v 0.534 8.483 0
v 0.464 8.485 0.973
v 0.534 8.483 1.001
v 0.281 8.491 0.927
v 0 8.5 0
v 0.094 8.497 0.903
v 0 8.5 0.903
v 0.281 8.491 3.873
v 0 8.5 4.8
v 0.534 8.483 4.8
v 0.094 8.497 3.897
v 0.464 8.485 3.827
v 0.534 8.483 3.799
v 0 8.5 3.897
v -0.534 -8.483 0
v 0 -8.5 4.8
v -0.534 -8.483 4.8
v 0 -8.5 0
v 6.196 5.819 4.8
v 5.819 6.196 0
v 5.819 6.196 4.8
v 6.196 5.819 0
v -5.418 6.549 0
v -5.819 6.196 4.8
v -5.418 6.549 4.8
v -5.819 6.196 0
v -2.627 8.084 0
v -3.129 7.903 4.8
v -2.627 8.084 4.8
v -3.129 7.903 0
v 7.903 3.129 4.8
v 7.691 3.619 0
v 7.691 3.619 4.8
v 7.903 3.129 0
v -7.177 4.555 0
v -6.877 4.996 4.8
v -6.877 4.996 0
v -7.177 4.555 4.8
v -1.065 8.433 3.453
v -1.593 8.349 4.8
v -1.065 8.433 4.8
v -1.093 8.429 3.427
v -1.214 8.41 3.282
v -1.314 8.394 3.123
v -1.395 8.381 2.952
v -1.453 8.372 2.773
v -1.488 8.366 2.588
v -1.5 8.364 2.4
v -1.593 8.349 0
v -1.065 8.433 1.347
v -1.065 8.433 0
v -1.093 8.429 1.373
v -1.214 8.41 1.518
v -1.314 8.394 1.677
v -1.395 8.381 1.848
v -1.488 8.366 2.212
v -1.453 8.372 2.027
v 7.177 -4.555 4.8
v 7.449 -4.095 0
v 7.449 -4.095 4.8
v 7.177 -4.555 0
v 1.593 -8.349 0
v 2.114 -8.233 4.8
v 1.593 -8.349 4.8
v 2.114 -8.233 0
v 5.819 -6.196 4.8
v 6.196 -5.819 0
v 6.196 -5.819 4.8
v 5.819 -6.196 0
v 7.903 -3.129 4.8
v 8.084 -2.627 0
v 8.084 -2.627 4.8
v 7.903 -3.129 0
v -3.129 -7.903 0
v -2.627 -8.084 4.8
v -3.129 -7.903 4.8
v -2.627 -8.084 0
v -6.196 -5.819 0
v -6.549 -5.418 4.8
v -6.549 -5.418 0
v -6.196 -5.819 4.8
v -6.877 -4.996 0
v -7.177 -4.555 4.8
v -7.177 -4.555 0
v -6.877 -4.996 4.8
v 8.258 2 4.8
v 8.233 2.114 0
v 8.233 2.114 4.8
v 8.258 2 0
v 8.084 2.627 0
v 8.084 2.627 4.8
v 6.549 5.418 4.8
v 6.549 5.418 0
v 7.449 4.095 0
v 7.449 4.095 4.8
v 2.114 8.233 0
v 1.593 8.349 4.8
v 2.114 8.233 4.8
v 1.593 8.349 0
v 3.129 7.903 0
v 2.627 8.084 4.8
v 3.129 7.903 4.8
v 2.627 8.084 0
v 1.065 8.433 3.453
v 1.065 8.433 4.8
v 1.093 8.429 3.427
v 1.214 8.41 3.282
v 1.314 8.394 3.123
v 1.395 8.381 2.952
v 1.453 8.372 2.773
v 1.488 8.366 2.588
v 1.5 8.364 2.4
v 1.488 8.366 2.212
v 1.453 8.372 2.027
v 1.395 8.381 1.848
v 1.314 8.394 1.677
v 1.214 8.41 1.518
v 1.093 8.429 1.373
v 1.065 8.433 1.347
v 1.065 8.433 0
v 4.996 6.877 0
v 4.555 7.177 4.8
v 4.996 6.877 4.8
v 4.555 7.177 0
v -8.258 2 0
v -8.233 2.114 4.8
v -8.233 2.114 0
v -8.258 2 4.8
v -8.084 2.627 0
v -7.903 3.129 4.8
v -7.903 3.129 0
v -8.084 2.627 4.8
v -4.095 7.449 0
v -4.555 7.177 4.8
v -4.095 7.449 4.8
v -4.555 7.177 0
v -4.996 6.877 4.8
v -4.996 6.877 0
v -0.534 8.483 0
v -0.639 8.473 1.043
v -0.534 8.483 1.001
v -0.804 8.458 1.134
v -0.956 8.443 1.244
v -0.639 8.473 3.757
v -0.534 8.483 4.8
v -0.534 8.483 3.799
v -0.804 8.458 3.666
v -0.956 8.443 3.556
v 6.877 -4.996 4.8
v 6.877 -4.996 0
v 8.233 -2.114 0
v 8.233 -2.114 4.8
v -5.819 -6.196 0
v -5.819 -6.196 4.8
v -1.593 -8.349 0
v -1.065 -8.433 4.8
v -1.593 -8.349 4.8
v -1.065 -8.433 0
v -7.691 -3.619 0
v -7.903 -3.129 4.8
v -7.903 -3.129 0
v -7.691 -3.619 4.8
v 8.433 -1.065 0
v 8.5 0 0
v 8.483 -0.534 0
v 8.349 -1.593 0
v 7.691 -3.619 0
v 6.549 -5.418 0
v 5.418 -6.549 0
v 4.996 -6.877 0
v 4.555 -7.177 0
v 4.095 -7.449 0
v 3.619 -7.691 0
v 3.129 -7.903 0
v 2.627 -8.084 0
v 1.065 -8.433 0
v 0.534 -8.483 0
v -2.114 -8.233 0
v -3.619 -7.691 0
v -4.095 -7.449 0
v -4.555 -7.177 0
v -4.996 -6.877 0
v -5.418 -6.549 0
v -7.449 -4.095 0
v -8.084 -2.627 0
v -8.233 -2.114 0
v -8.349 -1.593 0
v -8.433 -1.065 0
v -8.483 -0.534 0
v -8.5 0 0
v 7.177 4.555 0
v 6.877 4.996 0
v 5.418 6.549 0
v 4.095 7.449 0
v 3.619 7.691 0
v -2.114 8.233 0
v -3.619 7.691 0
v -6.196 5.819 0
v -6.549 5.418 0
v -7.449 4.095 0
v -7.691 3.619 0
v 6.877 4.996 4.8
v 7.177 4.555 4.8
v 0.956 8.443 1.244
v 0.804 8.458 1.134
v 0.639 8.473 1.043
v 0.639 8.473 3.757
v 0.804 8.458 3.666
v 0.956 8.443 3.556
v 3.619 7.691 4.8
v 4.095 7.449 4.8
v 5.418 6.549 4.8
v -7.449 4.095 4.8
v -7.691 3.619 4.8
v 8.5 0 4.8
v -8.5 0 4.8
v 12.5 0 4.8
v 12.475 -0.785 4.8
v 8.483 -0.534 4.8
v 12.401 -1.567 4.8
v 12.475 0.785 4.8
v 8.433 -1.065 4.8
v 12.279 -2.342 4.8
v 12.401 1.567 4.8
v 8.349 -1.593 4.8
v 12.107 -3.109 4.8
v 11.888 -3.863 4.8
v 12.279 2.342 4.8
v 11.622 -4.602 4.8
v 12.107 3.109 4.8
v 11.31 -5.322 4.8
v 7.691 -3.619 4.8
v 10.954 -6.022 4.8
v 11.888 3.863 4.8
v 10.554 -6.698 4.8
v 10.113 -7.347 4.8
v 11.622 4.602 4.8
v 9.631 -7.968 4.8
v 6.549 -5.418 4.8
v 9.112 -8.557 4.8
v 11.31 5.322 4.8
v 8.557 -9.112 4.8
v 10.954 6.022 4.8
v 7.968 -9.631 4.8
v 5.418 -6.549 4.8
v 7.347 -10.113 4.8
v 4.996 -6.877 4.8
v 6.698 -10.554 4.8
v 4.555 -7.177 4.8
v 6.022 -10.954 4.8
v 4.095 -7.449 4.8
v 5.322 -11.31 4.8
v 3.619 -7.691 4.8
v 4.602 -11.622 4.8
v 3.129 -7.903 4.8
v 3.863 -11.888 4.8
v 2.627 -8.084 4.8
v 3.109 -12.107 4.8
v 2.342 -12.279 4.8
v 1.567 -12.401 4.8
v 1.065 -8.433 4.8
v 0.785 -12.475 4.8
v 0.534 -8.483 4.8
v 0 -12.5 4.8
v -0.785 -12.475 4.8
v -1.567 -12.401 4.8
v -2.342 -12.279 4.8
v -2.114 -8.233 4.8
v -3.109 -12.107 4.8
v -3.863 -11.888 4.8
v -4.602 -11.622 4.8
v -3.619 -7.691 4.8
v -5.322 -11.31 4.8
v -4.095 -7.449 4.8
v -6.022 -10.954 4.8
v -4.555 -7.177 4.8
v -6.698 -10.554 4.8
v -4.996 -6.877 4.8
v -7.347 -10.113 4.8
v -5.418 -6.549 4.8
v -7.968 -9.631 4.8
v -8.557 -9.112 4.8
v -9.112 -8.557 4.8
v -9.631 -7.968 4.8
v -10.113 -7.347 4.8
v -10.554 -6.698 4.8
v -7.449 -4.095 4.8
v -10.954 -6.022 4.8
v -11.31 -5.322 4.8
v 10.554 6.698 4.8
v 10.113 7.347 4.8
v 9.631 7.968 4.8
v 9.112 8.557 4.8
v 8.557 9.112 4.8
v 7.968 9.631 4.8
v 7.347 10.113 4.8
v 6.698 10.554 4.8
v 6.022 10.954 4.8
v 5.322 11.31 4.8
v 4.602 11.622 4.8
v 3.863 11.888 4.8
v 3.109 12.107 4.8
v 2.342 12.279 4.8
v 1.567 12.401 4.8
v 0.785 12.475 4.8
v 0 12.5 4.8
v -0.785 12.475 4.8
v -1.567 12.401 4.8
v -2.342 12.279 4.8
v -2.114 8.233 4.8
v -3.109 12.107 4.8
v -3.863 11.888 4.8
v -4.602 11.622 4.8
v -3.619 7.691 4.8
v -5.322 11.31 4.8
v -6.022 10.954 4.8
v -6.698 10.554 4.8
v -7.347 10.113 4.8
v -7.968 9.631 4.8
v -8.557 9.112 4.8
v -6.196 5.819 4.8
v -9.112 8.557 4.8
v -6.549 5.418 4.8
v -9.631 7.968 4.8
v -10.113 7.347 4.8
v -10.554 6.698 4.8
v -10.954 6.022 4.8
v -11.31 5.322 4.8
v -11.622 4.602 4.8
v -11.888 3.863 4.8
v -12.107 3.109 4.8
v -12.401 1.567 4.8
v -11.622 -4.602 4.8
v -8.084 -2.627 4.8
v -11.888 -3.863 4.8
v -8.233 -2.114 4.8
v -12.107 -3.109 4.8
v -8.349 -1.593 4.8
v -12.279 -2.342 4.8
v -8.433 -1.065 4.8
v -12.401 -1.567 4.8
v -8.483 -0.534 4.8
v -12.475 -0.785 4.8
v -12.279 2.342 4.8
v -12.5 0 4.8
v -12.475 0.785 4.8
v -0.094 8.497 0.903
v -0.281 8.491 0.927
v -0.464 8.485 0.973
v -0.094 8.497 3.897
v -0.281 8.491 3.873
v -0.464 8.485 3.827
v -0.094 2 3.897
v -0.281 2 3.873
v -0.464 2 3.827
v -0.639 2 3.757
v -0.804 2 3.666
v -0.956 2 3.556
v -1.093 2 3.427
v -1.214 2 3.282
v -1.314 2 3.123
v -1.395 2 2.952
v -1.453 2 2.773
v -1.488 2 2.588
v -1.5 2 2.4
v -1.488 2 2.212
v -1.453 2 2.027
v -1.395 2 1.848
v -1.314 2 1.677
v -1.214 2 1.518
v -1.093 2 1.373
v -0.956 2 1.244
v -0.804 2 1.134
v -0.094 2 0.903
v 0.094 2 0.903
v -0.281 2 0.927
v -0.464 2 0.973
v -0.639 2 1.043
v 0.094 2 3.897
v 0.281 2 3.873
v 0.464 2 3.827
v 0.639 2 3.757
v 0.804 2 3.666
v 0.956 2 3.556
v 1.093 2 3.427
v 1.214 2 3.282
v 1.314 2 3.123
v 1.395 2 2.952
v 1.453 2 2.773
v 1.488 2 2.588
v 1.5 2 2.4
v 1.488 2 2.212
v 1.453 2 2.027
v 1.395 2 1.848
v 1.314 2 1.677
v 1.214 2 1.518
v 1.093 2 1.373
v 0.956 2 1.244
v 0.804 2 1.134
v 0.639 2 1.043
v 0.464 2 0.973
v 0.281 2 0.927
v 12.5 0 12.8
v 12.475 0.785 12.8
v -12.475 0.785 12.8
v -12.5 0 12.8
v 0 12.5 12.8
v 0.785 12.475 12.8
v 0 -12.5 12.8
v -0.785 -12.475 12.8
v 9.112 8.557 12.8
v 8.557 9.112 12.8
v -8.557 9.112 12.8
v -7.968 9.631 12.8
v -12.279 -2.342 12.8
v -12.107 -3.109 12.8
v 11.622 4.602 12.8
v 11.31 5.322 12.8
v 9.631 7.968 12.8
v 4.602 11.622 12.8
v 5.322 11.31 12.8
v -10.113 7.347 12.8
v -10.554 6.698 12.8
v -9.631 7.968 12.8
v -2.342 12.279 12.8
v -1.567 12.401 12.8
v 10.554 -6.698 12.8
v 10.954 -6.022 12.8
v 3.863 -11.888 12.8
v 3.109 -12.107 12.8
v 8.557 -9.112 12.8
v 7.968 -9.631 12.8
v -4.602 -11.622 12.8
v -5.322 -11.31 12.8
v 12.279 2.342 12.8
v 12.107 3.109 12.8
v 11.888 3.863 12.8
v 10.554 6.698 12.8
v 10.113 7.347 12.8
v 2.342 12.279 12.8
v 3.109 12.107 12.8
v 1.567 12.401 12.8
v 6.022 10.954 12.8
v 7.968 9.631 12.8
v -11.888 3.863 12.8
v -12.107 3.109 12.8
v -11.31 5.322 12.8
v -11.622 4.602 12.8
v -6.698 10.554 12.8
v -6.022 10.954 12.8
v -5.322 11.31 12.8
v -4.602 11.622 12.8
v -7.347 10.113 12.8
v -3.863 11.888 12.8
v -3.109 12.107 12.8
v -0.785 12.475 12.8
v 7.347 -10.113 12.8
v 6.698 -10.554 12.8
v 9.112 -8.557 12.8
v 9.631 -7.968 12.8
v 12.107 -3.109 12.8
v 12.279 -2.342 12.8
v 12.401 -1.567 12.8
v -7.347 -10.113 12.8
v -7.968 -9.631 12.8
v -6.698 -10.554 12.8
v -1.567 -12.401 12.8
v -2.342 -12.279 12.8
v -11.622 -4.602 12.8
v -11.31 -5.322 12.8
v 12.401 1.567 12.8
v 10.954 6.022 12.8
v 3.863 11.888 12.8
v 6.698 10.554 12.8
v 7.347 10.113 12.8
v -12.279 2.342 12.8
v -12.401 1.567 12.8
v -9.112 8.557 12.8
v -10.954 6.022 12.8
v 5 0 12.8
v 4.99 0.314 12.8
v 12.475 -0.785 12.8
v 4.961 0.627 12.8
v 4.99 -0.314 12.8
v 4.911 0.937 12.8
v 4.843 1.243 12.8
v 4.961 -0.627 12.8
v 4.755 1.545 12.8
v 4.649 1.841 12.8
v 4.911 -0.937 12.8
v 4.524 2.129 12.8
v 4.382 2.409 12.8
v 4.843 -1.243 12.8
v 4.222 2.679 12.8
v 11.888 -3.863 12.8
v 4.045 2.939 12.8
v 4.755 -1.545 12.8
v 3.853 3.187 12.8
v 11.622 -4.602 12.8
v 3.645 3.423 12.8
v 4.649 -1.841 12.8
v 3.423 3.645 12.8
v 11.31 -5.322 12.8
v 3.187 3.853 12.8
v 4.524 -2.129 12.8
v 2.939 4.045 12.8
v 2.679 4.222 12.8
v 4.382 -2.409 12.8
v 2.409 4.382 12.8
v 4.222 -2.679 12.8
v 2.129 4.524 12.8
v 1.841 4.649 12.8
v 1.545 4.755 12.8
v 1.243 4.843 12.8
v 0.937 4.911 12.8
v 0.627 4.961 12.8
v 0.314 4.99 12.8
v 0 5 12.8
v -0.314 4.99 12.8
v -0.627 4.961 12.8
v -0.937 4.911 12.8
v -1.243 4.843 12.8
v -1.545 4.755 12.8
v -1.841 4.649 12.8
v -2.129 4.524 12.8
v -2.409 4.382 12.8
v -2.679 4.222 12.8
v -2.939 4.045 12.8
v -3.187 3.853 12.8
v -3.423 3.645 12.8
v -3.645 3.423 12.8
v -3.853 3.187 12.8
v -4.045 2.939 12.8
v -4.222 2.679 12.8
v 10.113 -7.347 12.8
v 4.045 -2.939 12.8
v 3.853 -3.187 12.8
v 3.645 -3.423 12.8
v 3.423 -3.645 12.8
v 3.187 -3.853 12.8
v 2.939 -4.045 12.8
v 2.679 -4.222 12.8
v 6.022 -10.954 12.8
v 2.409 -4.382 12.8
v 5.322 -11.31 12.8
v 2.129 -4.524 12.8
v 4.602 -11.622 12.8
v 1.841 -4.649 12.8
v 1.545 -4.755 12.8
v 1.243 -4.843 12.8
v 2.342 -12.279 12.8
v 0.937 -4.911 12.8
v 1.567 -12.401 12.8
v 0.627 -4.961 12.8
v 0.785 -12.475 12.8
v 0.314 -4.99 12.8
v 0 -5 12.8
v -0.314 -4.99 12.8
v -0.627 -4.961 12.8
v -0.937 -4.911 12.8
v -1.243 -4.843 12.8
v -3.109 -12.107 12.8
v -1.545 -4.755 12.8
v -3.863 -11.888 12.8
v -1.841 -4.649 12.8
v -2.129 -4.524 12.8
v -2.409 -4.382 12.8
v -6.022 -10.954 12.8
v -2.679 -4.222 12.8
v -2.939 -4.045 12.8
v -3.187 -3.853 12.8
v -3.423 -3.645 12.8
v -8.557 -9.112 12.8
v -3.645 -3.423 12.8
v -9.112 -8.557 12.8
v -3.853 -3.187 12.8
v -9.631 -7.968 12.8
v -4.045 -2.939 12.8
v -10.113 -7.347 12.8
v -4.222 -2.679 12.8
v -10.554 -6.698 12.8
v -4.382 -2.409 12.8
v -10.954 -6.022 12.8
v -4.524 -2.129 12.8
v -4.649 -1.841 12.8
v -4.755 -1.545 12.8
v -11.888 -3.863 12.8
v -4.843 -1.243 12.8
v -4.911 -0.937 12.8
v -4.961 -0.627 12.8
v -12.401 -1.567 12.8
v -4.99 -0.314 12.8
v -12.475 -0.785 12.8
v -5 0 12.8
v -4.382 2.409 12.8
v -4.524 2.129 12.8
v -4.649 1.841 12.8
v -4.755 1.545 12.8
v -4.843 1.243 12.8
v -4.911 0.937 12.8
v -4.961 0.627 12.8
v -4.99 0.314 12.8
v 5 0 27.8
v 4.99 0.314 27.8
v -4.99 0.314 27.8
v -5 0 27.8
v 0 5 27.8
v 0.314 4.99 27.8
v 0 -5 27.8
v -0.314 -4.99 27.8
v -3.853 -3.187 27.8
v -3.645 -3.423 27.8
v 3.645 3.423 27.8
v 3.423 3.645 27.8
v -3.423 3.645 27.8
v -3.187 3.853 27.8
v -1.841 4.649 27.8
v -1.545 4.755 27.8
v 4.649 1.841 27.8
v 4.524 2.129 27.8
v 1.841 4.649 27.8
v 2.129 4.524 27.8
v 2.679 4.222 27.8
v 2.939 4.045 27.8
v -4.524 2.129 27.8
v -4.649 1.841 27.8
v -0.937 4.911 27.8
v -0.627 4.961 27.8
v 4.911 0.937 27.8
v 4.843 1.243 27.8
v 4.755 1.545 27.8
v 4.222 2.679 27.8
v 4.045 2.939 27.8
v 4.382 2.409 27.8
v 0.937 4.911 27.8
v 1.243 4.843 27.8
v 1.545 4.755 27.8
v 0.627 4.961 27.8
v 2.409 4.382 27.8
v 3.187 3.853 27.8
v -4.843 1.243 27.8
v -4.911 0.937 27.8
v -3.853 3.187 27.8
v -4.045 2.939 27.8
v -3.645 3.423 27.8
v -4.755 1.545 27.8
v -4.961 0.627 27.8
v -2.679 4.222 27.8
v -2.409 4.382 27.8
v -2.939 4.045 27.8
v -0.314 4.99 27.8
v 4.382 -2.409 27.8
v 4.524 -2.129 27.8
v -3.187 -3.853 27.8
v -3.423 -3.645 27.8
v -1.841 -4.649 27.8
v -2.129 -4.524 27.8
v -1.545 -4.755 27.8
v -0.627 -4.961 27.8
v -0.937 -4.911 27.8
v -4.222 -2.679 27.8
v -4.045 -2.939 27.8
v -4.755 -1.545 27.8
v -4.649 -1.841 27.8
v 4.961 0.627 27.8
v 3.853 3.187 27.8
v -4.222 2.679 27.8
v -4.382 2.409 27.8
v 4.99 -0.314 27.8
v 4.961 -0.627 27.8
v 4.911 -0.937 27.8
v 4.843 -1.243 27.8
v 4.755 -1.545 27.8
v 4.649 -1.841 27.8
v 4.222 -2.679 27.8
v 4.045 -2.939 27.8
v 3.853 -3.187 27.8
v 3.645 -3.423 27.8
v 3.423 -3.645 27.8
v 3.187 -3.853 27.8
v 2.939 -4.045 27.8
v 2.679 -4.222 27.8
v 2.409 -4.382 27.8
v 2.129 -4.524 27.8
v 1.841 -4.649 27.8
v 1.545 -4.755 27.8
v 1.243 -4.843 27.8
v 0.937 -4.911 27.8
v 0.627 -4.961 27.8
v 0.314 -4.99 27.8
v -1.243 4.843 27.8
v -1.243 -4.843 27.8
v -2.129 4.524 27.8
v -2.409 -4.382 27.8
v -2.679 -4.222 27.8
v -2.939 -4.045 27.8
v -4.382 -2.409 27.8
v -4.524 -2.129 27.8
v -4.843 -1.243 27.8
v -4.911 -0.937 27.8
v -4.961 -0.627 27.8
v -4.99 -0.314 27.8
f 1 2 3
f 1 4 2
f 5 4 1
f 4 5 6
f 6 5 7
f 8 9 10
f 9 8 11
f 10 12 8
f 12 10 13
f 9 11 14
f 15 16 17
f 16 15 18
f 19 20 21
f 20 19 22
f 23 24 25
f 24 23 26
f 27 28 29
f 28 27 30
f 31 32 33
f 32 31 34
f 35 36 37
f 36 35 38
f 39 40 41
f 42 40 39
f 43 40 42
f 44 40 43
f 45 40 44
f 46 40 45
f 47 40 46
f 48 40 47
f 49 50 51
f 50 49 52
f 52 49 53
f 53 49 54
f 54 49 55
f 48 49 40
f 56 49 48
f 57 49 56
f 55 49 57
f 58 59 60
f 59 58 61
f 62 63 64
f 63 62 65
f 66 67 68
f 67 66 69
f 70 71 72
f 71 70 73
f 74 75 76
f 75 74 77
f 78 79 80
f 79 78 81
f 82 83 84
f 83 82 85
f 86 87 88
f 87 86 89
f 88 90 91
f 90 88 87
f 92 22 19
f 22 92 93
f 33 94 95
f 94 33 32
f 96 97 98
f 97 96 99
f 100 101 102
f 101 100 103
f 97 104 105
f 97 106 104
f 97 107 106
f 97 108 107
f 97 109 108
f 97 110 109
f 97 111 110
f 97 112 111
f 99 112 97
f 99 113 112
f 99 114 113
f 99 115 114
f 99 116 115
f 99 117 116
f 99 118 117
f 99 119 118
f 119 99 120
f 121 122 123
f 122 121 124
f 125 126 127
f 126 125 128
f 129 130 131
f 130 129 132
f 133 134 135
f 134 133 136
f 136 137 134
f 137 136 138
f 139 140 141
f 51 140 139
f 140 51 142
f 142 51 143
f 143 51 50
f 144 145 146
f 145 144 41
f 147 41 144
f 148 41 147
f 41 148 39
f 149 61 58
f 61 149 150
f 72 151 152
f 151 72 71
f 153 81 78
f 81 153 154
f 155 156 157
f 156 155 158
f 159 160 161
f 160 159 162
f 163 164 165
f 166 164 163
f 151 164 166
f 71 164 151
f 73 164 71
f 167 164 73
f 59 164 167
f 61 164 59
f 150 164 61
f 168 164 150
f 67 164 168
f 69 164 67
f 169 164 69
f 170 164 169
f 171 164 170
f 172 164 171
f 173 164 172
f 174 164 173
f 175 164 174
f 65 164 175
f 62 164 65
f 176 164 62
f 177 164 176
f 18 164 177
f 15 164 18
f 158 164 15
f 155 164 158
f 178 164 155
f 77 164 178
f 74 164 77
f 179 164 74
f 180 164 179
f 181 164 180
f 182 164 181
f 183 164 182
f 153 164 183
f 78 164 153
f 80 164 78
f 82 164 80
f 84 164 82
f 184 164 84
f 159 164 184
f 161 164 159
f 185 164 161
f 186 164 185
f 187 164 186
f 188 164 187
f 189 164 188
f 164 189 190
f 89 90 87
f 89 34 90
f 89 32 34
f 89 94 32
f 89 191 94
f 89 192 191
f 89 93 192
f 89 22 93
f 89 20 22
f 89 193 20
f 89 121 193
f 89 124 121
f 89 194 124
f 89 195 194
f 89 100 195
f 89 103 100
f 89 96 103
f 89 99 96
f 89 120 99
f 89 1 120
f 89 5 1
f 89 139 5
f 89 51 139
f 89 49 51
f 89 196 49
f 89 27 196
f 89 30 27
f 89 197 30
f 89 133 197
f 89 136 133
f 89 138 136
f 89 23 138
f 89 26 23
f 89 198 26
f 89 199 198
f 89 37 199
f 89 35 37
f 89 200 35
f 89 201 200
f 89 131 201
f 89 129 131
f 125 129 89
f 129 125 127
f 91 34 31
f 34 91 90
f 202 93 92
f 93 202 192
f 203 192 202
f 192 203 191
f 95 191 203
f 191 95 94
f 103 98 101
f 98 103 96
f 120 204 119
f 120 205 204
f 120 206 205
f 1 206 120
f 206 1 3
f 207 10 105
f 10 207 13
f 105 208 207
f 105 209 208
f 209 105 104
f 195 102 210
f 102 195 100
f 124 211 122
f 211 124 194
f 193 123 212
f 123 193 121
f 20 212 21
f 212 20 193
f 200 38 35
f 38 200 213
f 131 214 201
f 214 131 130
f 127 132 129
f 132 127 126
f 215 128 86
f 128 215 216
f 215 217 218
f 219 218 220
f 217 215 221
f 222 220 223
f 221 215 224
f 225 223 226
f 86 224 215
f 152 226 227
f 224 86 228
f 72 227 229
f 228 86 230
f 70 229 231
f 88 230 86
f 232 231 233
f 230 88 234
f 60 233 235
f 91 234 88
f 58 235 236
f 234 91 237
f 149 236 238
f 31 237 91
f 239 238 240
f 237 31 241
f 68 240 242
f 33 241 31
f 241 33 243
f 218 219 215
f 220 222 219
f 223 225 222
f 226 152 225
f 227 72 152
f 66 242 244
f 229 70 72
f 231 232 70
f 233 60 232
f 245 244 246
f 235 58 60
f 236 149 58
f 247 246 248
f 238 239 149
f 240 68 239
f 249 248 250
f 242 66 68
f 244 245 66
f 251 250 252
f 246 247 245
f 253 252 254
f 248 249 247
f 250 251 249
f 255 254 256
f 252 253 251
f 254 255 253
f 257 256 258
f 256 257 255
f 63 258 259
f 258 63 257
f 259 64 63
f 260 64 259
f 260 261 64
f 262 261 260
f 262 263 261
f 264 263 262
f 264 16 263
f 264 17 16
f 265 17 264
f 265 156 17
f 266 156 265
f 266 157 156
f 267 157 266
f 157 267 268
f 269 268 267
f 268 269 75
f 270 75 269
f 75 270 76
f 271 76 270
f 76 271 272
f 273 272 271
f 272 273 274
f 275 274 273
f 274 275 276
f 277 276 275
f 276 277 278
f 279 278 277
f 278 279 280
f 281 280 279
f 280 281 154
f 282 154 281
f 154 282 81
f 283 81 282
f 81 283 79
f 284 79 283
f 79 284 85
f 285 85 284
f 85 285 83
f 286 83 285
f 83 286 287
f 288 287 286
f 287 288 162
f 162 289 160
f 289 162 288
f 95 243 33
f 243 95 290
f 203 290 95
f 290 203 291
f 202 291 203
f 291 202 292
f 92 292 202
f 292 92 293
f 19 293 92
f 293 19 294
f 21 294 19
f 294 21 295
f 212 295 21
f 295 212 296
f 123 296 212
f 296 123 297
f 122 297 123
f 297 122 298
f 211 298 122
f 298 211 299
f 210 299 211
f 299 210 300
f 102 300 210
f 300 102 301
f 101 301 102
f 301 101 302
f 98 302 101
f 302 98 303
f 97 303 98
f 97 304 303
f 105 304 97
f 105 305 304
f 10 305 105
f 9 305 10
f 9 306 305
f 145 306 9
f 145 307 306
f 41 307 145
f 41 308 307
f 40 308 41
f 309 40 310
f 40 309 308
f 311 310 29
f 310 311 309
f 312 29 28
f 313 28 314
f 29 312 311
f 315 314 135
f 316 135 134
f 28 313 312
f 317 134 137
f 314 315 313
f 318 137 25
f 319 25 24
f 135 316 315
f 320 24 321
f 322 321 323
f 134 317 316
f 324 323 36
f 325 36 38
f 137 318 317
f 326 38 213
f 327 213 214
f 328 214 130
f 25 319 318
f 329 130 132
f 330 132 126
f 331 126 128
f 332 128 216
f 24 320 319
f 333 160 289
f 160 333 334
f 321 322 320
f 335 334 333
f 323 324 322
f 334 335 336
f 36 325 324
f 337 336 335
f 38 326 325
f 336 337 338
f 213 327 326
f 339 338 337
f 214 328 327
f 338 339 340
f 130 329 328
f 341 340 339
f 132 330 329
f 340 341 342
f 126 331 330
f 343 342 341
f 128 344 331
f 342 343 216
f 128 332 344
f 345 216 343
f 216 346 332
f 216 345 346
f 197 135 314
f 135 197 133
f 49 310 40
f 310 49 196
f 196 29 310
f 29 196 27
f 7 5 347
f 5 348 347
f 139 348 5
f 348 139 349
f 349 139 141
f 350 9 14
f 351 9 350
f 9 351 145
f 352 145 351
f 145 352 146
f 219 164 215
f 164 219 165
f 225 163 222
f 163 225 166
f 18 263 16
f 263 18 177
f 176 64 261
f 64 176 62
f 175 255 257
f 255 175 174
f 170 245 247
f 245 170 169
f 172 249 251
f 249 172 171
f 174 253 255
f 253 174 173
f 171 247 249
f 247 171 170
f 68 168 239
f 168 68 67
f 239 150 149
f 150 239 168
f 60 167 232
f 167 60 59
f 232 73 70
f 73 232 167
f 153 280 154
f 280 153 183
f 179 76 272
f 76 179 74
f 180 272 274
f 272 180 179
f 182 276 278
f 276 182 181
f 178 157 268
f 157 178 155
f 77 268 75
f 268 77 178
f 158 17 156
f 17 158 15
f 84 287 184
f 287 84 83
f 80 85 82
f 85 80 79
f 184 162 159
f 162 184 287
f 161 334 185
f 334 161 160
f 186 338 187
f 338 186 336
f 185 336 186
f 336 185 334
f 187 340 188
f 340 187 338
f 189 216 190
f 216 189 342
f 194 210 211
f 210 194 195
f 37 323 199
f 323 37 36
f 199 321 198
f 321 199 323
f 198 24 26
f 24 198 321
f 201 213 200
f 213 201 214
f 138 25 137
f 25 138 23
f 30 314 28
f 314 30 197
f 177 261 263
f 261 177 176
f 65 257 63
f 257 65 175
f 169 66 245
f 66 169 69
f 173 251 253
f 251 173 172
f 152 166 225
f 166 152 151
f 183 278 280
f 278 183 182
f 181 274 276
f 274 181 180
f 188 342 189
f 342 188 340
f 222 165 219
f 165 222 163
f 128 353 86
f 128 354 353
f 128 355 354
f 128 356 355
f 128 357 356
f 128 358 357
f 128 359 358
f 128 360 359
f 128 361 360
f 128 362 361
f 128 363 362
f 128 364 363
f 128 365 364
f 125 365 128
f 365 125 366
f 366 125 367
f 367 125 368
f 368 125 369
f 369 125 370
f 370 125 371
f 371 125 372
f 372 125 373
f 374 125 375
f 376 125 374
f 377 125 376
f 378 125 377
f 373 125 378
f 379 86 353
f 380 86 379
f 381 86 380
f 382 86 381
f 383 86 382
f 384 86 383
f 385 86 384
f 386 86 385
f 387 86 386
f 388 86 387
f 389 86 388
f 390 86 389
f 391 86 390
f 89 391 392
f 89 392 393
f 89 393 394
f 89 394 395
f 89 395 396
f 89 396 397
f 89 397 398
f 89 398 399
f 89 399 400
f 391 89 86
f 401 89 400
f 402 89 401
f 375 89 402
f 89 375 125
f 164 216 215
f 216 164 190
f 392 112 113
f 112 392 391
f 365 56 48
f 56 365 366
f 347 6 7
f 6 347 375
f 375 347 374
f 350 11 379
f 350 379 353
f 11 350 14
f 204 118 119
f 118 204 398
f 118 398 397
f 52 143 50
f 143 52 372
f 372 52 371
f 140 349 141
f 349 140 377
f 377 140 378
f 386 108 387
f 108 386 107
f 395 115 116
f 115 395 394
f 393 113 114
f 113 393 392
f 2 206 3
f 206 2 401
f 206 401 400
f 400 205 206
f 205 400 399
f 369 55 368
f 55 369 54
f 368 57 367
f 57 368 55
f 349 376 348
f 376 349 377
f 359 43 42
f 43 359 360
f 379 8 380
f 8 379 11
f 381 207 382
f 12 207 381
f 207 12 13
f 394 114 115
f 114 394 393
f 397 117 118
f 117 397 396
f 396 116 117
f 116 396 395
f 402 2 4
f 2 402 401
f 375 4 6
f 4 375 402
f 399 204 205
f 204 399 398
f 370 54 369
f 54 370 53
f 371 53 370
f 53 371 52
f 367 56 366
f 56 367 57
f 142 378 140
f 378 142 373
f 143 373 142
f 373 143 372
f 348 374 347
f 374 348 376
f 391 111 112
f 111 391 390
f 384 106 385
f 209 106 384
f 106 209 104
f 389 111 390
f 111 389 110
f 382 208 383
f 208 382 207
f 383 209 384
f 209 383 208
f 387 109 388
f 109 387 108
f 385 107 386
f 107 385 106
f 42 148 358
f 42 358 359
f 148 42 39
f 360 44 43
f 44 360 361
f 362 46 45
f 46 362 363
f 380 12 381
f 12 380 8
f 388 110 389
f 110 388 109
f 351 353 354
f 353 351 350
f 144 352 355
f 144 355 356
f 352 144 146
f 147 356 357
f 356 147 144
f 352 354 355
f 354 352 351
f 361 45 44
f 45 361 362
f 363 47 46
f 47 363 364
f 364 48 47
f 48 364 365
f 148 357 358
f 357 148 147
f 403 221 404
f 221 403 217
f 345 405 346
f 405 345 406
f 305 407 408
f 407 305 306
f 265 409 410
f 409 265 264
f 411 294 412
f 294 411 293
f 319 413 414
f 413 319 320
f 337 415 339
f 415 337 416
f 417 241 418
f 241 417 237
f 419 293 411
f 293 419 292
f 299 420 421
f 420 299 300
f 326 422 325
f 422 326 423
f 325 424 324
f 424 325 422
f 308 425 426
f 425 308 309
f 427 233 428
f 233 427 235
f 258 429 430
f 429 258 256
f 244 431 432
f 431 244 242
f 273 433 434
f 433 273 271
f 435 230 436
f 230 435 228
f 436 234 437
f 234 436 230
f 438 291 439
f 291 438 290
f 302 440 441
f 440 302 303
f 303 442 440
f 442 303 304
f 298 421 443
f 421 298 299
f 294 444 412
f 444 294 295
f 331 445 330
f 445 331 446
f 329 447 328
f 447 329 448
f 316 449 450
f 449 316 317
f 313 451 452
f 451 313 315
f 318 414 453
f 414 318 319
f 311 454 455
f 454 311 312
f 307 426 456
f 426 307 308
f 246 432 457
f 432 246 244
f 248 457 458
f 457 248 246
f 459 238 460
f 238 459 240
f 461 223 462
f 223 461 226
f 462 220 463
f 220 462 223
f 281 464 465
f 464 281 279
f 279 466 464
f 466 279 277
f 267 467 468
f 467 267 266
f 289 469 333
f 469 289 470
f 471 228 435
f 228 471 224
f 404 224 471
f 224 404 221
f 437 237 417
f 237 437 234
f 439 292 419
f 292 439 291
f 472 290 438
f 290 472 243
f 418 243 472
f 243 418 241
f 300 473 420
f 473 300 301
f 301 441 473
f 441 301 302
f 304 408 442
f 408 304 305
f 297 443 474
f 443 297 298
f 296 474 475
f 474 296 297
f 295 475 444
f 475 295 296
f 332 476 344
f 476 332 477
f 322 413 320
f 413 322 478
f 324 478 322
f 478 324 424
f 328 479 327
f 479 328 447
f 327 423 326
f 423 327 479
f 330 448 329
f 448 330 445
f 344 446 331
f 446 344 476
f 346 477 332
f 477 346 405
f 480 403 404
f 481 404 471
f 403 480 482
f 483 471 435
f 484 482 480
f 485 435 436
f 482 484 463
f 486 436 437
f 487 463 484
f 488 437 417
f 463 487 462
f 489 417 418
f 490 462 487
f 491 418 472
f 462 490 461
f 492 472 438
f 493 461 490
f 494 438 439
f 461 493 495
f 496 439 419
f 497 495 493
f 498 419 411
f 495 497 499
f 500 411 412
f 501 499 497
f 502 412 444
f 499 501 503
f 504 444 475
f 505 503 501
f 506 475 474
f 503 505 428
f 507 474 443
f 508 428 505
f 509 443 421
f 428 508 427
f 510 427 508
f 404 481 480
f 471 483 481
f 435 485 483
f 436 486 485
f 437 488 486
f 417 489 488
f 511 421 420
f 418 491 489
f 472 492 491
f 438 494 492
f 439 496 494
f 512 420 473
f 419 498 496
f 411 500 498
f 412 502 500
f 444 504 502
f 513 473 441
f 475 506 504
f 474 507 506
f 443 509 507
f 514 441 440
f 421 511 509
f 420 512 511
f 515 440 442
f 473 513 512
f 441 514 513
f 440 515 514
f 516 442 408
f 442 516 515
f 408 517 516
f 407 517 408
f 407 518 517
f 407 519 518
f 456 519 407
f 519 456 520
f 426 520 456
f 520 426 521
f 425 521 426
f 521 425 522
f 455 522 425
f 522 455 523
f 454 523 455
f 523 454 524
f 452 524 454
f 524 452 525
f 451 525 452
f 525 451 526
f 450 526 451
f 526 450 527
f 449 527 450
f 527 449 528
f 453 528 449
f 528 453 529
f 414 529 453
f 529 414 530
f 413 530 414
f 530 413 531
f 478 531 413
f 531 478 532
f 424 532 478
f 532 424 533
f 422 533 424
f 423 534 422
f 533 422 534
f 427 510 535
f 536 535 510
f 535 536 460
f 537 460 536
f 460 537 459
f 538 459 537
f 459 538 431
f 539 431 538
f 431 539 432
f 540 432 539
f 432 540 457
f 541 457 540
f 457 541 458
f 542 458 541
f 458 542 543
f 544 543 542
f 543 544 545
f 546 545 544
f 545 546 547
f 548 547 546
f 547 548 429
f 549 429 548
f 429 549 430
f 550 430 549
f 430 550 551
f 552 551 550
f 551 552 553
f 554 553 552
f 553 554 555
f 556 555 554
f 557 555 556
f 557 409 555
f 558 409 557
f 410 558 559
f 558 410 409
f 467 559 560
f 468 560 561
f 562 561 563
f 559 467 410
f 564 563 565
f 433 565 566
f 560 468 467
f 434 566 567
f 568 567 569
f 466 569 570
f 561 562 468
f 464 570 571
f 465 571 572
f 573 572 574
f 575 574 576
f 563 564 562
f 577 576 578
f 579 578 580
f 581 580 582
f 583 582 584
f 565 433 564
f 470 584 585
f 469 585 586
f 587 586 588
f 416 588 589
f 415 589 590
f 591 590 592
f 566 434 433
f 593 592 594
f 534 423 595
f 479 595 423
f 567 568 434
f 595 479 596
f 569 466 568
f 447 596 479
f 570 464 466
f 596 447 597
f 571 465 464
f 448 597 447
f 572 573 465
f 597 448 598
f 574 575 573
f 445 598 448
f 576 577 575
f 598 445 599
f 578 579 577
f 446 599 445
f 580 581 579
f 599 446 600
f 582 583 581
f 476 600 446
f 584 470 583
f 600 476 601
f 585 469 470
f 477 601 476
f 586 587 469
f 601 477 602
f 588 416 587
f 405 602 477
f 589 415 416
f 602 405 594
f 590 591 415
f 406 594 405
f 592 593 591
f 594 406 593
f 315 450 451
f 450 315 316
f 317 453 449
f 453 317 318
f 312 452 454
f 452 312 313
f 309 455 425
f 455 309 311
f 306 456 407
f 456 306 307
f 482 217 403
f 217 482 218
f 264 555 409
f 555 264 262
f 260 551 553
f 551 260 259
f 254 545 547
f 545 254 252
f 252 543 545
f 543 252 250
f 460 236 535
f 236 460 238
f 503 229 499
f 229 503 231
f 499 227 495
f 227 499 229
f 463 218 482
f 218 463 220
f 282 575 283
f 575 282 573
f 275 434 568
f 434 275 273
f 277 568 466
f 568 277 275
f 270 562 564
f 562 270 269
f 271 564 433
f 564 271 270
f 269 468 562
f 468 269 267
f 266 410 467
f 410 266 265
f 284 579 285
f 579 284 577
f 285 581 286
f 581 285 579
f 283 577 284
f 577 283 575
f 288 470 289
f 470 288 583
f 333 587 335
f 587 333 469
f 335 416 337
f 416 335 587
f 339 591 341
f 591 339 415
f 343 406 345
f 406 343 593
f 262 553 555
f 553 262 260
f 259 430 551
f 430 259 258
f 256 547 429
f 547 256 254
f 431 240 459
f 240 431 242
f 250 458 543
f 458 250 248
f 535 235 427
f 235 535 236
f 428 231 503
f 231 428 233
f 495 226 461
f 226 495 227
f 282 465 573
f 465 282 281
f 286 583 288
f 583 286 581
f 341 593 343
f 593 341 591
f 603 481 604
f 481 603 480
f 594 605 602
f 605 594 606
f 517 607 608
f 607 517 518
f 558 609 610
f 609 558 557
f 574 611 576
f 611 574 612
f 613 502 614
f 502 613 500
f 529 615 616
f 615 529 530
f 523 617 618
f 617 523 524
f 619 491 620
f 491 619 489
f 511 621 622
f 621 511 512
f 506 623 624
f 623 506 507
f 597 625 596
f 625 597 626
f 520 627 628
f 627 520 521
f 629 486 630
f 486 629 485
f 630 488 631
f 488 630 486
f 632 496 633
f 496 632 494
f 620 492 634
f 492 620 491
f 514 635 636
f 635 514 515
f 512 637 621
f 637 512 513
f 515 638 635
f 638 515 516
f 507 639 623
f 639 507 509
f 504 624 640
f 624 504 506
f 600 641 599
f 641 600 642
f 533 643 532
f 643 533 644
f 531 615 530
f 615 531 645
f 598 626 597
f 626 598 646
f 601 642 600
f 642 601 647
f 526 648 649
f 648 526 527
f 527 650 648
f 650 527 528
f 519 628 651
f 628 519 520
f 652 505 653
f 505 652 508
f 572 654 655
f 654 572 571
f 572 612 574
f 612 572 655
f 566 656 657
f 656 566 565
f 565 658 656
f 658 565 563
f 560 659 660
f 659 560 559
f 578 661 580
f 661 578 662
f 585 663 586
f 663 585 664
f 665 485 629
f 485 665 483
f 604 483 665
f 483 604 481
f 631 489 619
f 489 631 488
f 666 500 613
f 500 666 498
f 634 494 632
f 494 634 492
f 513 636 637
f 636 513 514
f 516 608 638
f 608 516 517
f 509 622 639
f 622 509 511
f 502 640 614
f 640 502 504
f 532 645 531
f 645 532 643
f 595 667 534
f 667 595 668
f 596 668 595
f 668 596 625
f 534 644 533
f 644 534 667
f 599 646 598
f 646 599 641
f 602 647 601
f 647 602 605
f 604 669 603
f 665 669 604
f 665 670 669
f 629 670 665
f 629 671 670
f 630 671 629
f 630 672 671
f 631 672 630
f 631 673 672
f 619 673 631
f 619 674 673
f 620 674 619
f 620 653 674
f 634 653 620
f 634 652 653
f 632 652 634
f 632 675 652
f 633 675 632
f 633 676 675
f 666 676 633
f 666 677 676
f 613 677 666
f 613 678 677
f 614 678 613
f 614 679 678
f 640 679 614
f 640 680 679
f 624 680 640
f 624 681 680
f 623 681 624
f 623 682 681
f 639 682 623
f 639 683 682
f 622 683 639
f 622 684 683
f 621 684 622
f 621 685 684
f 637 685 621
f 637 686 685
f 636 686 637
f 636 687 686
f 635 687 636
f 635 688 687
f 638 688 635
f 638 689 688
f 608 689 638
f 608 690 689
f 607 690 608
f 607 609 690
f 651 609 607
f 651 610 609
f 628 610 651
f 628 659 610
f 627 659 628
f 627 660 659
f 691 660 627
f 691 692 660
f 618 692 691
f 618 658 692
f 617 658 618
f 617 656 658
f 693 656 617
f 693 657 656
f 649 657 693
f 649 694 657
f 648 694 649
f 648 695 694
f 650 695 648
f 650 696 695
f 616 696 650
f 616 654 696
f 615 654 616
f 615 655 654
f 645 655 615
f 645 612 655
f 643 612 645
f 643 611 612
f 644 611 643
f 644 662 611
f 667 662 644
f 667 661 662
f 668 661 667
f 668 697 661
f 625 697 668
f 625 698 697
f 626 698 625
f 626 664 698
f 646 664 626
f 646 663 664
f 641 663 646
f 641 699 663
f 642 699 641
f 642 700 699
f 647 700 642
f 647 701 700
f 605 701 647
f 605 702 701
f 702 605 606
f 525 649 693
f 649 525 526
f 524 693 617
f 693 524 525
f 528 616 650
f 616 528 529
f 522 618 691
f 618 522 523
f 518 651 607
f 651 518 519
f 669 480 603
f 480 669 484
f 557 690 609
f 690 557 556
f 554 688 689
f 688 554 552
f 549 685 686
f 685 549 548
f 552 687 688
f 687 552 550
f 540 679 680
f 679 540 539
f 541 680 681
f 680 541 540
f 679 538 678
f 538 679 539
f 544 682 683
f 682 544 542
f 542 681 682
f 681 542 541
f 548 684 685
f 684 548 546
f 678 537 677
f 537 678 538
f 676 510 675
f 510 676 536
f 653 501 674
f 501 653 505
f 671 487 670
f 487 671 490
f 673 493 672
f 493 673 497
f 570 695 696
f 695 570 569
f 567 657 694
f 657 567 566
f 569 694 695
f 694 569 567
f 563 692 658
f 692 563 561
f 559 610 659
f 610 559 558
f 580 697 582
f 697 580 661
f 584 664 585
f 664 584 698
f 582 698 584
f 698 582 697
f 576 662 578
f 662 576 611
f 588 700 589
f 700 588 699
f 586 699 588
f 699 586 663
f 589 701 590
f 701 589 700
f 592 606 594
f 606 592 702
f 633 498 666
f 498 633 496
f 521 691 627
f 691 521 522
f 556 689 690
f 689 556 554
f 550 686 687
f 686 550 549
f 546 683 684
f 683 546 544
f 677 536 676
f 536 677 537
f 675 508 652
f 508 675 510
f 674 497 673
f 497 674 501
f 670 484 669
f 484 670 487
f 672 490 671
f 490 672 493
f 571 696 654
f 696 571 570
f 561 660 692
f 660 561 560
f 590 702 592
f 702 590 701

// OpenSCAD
difference(){
cylinder (d=17, h=4.8, $fn=100);
   translate ([-10,0,0])cube([20,2,5]);
   translate ([0,0,2.4])rotate([-90,0,0])cylinder (d=3, h=9, $fn=50);
}
translate ([0,0,4.8])cylinder (d=25, h=8, $fn=100); 
translate ([0,0,4.8+8])cylinder (d=10, h=15, $fn=100); 
